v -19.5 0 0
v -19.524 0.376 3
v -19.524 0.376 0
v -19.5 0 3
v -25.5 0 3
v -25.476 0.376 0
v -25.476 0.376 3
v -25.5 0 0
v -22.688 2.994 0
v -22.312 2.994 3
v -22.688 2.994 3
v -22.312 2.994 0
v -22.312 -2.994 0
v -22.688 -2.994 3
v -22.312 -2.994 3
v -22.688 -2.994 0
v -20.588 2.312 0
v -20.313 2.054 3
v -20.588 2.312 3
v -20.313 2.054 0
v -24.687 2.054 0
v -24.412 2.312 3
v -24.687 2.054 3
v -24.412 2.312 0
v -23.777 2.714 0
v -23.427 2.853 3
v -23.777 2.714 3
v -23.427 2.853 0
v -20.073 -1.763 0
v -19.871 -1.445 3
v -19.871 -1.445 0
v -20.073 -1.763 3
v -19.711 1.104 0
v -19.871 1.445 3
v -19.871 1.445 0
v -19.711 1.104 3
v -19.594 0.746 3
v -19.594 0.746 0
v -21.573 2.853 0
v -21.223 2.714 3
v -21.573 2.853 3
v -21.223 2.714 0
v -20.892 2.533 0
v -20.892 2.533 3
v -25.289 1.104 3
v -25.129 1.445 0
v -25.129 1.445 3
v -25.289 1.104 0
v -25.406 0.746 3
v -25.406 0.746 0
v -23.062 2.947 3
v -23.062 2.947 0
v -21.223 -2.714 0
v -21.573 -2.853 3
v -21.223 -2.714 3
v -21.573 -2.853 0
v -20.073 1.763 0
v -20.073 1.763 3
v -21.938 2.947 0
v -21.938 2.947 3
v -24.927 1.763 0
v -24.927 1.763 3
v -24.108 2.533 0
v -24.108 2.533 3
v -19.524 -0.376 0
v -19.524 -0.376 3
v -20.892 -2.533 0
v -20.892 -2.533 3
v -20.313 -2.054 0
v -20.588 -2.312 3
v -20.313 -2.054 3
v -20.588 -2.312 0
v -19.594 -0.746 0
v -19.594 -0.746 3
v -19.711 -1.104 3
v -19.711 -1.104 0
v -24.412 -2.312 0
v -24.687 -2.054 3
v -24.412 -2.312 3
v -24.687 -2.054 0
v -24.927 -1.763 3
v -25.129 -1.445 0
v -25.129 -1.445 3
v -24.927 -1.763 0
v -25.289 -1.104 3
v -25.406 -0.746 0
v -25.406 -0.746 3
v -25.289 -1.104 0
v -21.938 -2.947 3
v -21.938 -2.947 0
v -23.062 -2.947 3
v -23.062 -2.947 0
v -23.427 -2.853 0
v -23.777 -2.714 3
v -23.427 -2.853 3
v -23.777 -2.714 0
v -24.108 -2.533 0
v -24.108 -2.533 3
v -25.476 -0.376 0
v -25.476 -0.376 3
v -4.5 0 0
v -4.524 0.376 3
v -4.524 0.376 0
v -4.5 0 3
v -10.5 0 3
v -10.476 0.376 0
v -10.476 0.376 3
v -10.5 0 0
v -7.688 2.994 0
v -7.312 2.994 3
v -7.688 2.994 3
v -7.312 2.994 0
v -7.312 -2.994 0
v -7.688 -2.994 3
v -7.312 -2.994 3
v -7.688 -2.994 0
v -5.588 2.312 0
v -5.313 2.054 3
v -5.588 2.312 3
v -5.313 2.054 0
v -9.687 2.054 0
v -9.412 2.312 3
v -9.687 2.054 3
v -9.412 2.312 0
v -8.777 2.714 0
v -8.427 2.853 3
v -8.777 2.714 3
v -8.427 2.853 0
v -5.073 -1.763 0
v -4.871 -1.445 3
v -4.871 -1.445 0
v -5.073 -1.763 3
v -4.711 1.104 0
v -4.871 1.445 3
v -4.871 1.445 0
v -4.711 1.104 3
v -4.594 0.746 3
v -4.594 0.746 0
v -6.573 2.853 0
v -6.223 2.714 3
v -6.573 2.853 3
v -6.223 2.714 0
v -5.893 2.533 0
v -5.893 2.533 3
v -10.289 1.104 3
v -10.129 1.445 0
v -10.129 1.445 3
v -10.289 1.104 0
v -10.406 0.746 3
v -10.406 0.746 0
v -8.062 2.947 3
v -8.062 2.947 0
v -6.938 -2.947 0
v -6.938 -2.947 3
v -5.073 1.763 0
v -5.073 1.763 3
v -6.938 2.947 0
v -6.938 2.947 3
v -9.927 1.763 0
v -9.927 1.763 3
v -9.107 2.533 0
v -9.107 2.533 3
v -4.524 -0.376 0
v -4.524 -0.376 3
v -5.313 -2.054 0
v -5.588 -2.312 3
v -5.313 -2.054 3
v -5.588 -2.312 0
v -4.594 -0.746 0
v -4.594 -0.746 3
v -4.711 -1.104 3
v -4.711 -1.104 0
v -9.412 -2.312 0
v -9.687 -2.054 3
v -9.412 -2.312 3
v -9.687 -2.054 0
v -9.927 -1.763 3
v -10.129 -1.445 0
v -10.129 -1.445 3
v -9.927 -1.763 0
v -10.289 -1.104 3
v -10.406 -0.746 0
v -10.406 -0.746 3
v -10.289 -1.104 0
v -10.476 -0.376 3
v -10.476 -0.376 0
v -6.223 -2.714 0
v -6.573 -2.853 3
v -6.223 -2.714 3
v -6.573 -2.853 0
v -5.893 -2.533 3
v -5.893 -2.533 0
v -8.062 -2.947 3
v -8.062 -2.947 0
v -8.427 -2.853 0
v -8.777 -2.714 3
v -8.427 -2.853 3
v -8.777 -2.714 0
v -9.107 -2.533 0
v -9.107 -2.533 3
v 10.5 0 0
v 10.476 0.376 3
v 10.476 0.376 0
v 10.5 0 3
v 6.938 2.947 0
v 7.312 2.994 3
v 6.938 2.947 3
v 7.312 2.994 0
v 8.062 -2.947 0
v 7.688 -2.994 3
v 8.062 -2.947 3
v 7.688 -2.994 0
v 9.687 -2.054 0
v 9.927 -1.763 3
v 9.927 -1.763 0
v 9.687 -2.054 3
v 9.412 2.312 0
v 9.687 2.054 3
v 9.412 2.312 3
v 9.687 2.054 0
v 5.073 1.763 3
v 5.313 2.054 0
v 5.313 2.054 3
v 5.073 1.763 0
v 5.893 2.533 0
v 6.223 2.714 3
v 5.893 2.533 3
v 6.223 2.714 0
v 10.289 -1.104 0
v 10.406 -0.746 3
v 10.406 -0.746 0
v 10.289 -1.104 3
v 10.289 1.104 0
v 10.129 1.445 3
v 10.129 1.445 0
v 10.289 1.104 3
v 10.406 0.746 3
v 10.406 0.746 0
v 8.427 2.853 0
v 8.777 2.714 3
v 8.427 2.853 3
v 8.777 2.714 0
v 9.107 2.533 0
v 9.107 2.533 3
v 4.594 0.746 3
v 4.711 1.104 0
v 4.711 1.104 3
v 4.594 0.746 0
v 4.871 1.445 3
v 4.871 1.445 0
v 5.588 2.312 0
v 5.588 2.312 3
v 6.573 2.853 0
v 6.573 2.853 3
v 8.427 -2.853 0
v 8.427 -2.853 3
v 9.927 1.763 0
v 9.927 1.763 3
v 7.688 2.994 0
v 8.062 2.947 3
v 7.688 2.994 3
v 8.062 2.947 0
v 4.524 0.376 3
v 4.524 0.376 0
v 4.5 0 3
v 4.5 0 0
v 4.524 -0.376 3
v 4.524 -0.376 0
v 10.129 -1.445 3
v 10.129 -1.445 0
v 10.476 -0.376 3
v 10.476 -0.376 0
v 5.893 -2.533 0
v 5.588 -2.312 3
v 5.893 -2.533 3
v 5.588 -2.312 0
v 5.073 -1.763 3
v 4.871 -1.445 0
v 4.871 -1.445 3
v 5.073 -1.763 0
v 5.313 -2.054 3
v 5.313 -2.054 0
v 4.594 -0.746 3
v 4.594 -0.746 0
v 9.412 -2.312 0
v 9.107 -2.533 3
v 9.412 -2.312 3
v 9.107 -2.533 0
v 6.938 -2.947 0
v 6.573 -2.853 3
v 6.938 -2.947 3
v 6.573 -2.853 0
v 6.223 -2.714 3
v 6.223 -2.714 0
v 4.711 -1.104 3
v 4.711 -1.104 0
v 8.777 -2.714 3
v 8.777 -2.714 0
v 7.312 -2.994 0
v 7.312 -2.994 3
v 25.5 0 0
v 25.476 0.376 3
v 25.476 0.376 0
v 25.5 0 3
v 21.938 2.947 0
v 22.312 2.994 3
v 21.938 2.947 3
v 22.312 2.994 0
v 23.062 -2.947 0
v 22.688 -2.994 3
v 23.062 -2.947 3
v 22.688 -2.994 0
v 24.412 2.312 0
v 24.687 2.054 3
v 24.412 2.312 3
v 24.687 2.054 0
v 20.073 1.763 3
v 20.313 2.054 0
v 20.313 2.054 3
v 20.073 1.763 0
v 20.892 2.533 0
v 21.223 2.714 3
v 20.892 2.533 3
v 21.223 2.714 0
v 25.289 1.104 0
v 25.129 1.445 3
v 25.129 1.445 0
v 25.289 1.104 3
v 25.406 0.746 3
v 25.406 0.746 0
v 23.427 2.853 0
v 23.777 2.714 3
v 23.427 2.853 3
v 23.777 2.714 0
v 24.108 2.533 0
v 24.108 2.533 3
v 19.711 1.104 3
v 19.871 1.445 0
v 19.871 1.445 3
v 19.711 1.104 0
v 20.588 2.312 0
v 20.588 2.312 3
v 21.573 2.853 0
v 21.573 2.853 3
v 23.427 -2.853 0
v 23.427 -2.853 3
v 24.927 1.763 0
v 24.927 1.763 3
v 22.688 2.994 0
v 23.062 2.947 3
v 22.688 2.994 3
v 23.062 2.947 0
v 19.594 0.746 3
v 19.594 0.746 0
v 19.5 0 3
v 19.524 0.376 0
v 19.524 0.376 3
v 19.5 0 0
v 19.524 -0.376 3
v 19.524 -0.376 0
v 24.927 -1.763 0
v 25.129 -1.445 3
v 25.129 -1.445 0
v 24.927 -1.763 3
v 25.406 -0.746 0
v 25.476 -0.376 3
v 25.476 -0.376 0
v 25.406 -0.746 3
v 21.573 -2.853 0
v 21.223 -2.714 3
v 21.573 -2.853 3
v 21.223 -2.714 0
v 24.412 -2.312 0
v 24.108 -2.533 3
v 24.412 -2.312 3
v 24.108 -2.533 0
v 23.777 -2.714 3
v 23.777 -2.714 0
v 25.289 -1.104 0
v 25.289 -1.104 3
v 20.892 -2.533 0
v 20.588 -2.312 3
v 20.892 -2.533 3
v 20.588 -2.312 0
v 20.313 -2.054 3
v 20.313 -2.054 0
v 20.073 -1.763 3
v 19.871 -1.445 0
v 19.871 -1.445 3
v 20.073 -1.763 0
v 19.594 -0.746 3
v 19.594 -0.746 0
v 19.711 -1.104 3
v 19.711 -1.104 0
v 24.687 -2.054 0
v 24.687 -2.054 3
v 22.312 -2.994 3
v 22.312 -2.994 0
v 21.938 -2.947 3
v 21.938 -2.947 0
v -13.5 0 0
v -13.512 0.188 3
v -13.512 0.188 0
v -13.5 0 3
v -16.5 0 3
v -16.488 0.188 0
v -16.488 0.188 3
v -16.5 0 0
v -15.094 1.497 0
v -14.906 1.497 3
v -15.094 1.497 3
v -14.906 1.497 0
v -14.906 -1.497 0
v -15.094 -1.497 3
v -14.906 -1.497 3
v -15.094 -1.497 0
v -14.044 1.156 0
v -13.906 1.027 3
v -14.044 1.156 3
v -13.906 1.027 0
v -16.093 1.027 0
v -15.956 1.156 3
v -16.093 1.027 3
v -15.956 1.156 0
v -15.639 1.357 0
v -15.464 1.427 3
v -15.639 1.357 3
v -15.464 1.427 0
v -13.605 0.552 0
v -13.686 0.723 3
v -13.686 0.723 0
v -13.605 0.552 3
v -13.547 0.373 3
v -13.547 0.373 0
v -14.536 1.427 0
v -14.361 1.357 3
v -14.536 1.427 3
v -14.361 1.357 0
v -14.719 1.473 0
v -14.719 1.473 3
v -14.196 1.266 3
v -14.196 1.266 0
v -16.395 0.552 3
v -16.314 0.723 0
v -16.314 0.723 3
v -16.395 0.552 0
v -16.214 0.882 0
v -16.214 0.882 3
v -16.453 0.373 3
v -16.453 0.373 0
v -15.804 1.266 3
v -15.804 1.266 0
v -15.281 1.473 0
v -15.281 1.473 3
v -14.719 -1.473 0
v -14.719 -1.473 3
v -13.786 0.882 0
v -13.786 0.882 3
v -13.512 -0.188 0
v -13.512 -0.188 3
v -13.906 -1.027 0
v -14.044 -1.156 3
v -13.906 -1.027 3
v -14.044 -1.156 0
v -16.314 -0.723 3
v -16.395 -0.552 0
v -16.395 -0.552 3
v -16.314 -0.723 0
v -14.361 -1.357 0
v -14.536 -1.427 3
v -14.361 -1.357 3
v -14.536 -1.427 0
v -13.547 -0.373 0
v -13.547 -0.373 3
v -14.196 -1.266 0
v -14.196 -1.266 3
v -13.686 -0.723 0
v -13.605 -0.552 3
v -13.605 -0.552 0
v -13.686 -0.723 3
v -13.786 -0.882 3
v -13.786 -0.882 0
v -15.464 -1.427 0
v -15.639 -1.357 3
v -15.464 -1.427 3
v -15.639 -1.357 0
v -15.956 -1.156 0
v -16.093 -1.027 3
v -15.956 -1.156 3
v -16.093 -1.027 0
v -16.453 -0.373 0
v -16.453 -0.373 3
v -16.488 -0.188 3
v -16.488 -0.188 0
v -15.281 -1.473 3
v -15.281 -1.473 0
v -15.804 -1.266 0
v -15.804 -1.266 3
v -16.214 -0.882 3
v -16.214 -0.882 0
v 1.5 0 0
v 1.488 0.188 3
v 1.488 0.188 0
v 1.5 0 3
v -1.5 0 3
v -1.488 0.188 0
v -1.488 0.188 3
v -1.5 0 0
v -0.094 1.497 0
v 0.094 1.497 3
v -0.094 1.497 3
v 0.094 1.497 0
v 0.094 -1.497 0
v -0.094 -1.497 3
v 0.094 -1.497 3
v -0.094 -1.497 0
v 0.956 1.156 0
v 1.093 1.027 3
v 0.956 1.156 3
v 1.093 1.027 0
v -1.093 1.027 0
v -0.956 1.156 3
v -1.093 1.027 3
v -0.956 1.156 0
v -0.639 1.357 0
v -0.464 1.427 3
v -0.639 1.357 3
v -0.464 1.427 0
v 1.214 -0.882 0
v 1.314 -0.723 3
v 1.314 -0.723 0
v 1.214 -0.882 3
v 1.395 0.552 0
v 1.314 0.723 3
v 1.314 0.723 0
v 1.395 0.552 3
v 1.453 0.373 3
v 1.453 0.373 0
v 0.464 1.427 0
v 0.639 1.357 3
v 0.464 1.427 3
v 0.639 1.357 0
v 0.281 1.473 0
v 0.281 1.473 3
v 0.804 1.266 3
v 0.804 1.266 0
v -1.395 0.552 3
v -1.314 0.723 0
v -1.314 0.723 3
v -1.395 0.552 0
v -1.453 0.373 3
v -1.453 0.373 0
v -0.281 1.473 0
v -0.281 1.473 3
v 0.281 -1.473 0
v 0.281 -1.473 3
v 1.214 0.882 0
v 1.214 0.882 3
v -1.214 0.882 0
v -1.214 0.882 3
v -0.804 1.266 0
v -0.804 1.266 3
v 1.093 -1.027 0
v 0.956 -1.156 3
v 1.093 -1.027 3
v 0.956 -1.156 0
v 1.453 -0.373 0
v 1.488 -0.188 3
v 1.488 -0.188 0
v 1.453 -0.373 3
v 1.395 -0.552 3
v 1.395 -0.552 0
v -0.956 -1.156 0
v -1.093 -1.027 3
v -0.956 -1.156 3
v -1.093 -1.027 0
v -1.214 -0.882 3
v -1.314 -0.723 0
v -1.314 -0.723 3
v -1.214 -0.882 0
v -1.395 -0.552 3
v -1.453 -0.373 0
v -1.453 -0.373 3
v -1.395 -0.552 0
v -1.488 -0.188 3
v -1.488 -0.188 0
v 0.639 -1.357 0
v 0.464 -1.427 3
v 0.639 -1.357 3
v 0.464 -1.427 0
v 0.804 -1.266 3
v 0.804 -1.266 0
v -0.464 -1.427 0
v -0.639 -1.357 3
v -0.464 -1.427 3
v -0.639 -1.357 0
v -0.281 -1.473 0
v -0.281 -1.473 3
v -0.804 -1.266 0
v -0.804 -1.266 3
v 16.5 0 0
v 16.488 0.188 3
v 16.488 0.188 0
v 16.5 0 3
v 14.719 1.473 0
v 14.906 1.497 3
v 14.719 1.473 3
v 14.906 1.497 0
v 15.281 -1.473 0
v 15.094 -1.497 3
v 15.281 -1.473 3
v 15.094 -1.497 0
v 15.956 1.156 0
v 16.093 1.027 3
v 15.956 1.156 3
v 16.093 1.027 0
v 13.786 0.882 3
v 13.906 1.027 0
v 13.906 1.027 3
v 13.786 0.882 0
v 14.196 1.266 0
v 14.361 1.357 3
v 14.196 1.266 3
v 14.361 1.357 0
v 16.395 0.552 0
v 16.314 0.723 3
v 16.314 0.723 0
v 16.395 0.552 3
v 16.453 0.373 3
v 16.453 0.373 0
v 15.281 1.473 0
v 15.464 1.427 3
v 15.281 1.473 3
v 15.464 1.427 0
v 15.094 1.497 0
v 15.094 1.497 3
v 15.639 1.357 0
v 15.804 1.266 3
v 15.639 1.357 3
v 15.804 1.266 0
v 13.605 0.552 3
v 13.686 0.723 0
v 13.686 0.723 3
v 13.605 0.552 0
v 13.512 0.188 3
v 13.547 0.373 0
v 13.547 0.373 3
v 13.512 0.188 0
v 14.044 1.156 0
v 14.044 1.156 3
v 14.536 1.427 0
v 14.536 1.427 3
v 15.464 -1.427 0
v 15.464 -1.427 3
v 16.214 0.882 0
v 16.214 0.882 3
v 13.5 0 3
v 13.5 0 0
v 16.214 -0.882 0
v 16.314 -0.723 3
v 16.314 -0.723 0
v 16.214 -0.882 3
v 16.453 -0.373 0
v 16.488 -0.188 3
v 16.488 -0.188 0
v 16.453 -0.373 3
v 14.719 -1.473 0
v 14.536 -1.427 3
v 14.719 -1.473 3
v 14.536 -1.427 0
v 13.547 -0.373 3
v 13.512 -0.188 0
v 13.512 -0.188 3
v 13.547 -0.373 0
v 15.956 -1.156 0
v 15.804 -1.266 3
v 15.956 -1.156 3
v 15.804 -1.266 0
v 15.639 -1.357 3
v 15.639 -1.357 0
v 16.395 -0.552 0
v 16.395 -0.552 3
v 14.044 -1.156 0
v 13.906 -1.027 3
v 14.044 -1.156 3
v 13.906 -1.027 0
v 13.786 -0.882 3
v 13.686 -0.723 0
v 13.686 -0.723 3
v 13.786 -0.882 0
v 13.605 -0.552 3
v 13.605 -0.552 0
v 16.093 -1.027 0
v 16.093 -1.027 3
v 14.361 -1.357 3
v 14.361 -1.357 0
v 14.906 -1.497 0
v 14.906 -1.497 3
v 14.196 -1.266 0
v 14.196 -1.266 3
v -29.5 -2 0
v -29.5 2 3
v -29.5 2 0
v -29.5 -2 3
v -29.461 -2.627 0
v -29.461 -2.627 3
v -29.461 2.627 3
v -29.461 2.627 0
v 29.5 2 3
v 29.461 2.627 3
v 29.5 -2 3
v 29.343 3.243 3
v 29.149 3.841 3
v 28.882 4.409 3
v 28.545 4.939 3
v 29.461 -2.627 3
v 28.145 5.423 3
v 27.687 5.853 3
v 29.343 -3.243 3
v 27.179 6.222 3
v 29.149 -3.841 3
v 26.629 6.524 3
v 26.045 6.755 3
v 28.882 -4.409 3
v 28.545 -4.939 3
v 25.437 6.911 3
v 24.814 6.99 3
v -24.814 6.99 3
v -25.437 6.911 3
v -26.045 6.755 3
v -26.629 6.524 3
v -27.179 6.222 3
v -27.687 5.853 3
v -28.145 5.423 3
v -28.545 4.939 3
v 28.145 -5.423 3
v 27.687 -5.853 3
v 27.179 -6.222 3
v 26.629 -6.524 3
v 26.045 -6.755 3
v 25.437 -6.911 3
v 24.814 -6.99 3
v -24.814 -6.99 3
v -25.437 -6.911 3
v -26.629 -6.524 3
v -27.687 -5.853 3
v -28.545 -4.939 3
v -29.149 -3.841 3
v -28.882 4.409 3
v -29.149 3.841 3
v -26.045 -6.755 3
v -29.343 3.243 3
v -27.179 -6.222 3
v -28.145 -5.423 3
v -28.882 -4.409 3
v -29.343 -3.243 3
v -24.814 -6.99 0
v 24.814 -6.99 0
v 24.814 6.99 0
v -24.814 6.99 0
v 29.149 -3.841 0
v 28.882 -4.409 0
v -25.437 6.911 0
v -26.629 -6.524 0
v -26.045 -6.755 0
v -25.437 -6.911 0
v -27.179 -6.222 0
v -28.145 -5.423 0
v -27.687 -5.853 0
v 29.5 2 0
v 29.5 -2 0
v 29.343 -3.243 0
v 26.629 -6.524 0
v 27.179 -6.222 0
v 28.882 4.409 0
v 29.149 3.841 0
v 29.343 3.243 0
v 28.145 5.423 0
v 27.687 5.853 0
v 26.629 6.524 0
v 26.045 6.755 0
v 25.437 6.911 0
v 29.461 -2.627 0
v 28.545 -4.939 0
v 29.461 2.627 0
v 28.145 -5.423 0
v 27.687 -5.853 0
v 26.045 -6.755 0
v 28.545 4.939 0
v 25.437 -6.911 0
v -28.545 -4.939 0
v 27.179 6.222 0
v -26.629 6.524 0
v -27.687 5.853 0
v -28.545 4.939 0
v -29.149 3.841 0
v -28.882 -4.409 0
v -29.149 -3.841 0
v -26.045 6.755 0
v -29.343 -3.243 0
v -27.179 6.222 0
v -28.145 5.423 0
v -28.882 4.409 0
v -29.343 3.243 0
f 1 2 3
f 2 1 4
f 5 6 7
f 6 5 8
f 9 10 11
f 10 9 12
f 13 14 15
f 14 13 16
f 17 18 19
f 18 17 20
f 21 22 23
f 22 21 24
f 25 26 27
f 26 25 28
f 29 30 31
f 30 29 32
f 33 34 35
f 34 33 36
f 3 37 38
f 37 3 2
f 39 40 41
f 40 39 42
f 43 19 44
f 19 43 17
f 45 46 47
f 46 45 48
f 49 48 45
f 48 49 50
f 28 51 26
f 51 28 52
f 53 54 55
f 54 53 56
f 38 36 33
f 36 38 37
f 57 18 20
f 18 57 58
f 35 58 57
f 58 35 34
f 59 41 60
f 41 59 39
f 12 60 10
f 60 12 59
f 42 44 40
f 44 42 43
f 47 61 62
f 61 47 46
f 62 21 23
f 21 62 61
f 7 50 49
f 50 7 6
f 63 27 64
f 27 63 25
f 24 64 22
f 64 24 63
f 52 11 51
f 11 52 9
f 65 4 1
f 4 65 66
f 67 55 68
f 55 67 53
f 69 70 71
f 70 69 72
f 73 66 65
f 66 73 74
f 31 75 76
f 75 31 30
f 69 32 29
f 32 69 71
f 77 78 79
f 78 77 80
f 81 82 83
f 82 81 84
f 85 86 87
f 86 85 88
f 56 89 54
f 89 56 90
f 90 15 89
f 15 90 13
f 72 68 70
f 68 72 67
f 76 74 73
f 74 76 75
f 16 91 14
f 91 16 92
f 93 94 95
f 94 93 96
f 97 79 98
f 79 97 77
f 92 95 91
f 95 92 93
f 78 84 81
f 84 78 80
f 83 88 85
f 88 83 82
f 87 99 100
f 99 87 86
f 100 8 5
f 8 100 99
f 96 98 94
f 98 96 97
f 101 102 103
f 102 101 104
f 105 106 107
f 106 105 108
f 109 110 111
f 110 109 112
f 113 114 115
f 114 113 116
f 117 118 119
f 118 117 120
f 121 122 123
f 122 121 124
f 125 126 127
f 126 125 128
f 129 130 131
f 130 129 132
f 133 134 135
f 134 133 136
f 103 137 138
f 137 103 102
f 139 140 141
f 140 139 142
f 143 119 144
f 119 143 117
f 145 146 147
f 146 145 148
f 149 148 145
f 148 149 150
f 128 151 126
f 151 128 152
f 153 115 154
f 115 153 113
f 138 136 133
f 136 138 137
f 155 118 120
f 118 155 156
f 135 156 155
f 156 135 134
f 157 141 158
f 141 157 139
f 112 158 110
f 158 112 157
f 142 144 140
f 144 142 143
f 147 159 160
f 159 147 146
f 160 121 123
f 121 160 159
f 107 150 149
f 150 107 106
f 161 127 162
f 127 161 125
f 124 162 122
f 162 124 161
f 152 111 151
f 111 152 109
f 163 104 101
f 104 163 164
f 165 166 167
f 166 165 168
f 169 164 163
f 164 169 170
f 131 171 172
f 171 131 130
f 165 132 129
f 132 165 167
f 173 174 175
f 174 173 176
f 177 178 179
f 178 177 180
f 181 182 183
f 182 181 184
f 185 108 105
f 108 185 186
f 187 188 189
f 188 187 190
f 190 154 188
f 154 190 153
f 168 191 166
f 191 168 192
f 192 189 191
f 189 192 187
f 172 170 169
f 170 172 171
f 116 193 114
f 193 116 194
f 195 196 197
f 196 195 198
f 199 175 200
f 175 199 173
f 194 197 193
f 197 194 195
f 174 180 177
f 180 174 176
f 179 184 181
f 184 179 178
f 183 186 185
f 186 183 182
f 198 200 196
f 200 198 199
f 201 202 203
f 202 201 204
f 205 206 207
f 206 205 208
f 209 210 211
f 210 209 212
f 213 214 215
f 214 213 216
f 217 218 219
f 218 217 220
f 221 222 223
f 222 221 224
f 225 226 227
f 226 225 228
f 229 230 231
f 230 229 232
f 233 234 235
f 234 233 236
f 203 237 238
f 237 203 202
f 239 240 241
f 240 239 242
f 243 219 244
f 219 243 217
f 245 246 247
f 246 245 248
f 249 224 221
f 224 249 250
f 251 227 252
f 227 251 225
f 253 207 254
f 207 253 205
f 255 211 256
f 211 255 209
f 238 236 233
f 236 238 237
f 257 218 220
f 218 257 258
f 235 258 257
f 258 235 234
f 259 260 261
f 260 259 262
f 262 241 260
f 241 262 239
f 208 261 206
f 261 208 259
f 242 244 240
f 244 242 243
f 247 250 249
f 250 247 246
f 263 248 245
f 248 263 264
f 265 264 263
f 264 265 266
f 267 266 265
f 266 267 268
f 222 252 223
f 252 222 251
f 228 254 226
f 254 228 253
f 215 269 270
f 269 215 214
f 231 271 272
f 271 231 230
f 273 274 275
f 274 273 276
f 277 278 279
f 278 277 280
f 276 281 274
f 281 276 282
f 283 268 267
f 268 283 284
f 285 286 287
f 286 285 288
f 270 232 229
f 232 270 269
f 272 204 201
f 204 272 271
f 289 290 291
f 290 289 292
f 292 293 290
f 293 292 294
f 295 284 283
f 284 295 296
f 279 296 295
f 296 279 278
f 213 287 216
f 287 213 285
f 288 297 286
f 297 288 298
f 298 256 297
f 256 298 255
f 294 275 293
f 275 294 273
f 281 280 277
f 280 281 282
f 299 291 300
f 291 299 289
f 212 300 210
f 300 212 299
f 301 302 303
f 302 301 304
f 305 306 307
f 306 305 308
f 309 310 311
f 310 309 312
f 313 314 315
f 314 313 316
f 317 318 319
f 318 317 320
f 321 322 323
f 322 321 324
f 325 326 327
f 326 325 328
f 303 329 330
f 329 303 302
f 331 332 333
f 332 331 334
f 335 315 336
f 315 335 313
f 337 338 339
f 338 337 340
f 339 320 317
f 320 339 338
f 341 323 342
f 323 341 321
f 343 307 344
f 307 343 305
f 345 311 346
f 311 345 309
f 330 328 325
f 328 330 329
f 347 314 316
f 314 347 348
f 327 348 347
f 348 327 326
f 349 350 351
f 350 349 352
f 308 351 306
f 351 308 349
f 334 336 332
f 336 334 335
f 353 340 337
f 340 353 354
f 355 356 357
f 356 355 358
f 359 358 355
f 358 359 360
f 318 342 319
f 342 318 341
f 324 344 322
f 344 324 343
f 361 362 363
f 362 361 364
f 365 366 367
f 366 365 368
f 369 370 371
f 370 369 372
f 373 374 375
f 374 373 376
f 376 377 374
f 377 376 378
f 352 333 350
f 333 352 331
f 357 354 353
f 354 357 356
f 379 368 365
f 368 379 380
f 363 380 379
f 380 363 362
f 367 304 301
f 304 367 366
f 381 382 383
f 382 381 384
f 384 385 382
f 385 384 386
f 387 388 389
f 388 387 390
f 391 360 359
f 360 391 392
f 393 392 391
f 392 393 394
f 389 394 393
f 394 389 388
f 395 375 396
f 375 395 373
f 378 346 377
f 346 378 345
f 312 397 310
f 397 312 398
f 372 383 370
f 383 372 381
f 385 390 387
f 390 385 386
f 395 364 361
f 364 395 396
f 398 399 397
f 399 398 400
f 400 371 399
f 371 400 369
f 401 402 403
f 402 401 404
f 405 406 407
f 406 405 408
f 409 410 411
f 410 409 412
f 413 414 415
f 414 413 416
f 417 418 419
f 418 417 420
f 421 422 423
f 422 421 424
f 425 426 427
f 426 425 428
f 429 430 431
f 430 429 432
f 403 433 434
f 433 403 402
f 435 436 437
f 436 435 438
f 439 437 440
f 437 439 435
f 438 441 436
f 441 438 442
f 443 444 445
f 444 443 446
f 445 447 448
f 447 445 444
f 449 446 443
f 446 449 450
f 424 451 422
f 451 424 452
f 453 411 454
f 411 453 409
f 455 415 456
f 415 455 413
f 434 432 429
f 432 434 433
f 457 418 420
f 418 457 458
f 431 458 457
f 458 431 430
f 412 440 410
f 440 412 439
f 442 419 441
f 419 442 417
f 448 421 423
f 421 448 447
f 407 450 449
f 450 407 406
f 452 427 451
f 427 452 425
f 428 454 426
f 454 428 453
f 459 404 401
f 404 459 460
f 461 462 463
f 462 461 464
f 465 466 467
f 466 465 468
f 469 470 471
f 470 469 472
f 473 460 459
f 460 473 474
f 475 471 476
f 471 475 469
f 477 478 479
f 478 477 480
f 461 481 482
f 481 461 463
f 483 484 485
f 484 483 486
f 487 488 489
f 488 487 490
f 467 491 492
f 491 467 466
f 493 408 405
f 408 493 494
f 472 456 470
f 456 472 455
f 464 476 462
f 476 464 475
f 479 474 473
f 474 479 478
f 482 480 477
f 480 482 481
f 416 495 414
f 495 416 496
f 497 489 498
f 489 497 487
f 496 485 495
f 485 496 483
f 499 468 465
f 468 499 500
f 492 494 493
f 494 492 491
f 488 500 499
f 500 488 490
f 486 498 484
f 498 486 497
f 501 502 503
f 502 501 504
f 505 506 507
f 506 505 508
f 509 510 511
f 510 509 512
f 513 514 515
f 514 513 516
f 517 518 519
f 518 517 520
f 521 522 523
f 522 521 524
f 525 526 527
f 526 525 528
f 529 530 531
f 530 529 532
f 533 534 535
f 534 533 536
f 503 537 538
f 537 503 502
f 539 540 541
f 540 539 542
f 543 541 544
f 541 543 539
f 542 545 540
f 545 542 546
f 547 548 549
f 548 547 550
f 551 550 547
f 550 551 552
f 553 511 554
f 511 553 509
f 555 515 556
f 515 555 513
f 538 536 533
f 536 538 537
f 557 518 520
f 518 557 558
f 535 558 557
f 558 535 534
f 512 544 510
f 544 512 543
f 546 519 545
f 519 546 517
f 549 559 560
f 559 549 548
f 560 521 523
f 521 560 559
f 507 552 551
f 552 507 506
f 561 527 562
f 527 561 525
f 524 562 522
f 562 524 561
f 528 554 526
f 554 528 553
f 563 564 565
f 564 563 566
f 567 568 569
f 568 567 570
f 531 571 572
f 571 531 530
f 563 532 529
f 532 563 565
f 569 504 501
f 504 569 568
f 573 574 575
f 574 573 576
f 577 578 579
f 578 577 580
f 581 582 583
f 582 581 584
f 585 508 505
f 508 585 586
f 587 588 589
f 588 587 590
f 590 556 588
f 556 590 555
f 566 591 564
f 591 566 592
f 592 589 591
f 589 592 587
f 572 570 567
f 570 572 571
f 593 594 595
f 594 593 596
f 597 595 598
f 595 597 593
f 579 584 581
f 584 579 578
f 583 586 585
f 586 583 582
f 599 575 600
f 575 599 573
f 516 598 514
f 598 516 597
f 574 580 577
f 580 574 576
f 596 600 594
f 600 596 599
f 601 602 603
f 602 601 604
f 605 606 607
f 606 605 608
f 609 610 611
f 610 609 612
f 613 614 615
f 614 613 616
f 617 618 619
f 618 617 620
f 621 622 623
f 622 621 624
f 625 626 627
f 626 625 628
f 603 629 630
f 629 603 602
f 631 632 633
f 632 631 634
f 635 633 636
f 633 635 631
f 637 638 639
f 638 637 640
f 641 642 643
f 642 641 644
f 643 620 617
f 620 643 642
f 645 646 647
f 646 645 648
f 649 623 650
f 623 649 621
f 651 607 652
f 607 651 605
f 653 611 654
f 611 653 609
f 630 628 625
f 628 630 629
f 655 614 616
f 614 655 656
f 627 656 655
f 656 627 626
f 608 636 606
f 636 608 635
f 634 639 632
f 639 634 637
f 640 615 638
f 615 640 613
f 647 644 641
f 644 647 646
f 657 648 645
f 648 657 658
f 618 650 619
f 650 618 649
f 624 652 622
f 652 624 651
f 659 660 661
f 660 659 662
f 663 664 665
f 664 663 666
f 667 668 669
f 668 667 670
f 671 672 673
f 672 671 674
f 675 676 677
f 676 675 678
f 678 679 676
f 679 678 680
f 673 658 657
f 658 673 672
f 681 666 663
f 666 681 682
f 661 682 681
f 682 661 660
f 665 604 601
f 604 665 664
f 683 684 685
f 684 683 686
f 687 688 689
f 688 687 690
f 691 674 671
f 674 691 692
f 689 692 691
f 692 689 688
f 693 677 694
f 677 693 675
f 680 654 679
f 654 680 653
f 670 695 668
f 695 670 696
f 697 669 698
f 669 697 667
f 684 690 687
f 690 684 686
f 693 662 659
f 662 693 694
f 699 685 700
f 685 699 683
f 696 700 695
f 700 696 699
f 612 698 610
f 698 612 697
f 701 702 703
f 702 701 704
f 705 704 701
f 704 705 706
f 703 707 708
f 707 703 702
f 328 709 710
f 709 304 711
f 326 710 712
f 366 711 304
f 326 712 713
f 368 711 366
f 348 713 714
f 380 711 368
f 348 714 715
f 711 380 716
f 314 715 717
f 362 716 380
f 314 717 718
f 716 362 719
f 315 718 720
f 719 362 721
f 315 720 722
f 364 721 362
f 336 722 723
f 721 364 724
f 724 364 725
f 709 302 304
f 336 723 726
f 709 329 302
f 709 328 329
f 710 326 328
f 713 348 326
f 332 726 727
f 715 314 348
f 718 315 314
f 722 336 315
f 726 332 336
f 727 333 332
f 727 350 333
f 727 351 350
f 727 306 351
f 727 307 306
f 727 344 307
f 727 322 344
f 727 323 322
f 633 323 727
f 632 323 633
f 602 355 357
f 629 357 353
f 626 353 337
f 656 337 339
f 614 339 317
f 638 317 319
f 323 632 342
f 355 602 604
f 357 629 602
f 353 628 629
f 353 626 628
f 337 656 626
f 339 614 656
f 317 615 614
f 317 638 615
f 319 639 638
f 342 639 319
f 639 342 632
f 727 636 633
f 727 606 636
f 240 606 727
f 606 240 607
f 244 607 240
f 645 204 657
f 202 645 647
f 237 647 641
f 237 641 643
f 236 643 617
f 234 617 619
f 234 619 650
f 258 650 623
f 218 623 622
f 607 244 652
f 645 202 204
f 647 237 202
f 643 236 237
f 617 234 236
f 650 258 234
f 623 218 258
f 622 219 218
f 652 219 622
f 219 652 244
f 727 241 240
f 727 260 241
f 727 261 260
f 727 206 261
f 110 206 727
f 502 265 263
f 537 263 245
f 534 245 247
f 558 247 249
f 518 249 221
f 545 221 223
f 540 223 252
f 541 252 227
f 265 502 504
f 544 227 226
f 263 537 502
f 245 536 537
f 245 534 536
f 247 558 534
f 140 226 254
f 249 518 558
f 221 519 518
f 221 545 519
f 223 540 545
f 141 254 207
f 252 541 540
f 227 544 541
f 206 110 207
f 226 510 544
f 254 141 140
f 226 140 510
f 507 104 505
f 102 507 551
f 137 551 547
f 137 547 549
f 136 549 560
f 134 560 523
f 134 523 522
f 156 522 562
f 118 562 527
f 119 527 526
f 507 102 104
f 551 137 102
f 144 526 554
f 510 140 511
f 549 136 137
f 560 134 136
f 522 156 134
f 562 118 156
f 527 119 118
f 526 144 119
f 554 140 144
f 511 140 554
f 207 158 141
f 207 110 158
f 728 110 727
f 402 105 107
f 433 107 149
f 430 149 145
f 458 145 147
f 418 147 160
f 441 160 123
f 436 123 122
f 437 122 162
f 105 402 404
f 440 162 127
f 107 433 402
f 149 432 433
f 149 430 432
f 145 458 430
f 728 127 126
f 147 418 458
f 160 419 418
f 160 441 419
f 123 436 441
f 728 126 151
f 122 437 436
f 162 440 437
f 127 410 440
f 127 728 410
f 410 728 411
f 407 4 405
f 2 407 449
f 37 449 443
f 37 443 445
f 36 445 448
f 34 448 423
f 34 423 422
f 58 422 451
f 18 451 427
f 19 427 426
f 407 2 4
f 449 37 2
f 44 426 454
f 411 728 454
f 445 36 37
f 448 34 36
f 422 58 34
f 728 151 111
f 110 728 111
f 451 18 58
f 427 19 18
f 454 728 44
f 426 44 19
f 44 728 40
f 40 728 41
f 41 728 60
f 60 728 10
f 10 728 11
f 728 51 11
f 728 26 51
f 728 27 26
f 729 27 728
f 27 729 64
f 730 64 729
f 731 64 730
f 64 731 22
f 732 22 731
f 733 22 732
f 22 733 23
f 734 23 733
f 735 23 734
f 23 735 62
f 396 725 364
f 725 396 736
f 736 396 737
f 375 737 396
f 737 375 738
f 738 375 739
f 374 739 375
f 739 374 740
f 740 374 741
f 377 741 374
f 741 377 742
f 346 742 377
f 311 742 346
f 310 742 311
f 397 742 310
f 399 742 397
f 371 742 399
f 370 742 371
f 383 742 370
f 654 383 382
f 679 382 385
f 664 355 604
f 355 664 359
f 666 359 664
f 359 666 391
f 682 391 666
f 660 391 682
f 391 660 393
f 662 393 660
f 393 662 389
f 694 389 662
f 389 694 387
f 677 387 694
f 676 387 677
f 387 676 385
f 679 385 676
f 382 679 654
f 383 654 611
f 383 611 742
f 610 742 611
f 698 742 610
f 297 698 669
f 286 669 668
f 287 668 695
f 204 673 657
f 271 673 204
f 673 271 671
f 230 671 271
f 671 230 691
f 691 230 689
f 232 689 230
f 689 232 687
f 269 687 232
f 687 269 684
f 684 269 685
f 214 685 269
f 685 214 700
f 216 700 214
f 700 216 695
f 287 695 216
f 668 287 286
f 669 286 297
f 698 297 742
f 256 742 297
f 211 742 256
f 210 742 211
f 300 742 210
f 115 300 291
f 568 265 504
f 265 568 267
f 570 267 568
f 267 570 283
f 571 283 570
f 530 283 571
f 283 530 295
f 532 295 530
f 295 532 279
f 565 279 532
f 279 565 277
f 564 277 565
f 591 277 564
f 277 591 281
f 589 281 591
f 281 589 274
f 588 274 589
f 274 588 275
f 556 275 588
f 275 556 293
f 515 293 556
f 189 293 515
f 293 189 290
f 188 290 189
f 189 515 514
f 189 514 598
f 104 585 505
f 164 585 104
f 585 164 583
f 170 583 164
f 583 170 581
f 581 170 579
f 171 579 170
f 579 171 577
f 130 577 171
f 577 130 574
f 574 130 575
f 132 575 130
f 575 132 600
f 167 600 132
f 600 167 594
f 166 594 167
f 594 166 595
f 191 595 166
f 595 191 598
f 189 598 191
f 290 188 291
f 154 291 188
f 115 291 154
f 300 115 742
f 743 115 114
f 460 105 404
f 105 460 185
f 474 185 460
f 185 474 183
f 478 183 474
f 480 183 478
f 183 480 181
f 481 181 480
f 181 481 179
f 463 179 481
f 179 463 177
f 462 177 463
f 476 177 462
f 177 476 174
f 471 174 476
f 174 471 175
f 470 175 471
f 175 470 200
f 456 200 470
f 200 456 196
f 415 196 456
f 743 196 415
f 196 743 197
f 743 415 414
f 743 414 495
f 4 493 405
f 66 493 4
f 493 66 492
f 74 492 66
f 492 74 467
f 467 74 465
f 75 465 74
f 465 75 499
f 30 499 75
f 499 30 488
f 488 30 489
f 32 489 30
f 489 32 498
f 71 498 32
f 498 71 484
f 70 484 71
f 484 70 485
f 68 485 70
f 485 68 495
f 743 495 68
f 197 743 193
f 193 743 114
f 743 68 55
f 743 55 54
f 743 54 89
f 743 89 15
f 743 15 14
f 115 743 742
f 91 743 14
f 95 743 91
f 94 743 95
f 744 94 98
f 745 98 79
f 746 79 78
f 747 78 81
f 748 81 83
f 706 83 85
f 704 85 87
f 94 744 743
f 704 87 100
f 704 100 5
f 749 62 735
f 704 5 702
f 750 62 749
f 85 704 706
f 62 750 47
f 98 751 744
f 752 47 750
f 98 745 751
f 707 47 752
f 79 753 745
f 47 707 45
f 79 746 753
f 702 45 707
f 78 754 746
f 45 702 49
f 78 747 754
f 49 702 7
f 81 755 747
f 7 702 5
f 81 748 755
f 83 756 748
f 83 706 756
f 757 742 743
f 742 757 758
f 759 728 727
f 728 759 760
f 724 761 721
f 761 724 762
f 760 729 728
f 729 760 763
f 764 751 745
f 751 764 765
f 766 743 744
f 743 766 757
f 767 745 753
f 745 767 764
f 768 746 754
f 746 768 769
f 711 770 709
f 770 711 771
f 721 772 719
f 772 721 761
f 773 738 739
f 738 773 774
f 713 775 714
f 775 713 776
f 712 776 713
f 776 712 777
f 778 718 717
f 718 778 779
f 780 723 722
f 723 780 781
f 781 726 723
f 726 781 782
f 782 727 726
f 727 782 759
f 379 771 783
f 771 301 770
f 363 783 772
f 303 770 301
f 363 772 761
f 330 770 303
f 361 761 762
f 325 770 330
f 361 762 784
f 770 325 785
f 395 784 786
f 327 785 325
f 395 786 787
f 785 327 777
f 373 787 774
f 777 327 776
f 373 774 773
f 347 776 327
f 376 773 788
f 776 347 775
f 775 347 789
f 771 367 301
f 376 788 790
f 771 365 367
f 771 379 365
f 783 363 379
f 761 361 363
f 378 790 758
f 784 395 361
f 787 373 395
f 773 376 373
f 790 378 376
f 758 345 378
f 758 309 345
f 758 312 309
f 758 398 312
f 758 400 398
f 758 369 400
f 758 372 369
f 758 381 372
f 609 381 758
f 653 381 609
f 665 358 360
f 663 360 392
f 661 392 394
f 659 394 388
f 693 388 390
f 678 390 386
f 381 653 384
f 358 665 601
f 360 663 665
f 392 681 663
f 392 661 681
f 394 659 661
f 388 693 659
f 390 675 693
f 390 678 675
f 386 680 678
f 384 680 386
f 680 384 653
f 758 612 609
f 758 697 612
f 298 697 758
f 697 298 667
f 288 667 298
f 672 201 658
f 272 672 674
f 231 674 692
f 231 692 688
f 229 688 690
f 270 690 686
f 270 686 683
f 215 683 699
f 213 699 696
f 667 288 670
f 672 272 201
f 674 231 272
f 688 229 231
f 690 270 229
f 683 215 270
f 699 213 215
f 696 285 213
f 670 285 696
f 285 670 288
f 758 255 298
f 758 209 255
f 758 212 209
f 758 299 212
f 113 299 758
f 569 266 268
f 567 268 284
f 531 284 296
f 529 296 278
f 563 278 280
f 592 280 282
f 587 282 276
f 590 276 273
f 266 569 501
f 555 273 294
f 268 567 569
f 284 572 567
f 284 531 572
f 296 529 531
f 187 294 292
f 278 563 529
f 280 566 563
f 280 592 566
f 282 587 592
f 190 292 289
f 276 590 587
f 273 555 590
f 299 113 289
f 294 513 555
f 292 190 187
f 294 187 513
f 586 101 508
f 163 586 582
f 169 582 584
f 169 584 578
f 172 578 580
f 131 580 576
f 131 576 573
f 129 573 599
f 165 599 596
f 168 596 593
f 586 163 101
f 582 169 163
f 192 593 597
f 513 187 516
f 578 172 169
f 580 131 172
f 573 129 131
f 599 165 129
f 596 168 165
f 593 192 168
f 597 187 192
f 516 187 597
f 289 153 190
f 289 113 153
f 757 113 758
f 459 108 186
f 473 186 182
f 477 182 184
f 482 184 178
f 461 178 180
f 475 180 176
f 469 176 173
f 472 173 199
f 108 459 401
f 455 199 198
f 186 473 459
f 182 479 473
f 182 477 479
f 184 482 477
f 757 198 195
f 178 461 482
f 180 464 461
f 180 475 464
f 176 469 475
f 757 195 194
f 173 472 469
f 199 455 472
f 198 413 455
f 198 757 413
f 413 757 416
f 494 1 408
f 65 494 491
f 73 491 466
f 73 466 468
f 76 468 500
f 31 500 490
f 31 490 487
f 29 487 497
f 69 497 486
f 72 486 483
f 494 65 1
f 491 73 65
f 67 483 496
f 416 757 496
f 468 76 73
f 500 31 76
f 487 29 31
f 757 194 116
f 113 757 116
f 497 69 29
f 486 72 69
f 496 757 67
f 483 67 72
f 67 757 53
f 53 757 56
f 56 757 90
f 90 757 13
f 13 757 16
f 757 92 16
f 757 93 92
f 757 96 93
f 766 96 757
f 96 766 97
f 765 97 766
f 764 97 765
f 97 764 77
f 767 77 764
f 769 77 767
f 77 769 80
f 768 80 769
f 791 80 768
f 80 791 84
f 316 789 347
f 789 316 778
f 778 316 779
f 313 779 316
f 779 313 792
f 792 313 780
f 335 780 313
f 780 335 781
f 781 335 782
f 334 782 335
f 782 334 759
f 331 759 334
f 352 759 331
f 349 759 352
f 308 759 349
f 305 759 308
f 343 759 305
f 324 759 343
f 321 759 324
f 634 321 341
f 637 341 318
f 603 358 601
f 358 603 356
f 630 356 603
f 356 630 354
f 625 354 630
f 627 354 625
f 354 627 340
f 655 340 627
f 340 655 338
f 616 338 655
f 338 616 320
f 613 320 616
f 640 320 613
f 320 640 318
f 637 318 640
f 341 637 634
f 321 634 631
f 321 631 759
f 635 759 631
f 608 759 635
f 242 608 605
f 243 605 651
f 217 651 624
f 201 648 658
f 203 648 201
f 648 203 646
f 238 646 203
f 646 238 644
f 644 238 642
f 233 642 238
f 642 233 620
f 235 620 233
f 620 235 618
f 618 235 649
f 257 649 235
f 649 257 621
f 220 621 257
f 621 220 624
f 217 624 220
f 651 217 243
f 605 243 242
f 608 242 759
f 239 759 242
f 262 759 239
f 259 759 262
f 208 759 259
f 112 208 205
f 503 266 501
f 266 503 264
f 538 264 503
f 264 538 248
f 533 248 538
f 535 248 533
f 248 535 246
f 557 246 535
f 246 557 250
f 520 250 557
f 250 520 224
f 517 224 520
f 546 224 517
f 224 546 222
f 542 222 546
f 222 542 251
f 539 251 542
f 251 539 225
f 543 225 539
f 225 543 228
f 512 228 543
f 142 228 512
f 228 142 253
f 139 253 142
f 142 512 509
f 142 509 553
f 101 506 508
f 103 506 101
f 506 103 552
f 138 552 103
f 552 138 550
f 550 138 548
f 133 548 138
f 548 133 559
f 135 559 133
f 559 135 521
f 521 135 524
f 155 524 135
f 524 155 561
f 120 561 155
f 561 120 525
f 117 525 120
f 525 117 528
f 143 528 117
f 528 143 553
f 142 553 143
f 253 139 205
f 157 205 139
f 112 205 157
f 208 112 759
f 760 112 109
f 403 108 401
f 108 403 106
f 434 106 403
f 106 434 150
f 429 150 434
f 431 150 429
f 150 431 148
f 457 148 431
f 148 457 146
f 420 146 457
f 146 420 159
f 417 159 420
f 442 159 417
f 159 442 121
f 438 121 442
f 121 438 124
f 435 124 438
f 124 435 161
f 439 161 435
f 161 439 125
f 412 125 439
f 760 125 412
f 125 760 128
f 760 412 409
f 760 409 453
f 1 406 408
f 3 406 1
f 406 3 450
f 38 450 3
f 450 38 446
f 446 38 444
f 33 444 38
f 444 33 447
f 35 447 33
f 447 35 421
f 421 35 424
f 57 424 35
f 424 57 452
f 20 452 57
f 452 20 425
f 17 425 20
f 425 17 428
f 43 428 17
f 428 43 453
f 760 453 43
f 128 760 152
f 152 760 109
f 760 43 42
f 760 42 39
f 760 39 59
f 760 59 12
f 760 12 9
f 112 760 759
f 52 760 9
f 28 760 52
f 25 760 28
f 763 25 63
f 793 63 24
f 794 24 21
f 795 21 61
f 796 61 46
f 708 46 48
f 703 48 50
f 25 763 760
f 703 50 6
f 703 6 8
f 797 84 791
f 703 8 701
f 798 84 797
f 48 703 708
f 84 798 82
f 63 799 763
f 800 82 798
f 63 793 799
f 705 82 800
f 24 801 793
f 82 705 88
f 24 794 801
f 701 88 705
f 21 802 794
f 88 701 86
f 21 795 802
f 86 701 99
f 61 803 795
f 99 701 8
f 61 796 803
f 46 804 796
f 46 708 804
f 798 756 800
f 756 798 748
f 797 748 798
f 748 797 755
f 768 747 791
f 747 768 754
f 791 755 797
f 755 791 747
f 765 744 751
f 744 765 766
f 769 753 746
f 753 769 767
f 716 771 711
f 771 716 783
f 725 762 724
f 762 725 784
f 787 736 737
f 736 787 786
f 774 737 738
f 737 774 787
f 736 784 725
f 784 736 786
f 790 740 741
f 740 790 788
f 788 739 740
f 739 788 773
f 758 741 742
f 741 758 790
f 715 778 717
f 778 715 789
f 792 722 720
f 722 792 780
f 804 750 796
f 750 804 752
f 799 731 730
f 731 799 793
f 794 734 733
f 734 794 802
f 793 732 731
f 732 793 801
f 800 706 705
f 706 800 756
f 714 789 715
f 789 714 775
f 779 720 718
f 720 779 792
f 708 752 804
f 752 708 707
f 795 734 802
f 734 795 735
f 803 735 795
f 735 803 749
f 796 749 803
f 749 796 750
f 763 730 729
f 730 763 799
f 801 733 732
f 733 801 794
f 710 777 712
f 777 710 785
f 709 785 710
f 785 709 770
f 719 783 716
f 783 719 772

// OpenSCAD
$fn = 50;


difference() {
	union() {
		hull() {
			translate(v = [-24.5000000000, 2.0000000000, 0]) {
				cylinder(h = 3, r = 5);
			}
			translate(v = [24.5000000000, 2.0000000000, 0]) {
				cylinder(h = 3, r = 5);
			}
			translate(v = [-24.5000000000, -2.0000000000, 0]) {
				cylinder(h = 3, r = 5);
			}
			translate(v = [24.5000000000, -2.0000000000, 0]) {
				cylinder(h = 3, r = 5);
			}
		}
	}
	union() {
		translate(v = [-22.5000000000, 0.0000000000, 0]) {
			translate(v = [0, 0, -100]) {
				cylinder(h = 200, r = 3.0000000000);
			}
		}
		translate(v = [-7.5000000000, 0.0000000000, 0]) {
			translate(v = [0, 0, -100]) {
				cylinder(h = 200, r = 3.0000000000);
			}
		}
		translate(v = [7.5000000000, 0.0000000000, 0]) {
			translate(v = [0, 0, -100]) {
				cylinder(h = 200, r = 3.0000000000);
			}
		}
		translate(v = [22.5000000000, 0.0000000000, 0]) {
			translate(v = [0, 0, -100]) {
				cylinder(h = 200, r = 3.0000000000);
			}
		}
		translate(v = [-22.5000000000, 0.0000000000, 0]) {
			translate(v = [0, 0, -100]) {
				cylinder(h = 200, r = 1.5000000000);
			}
		}
		translate(v = [-15.0000000000, 0.0000000000, 0]) {
			translate(v = [0, 0, -100]) {
				cylinder(h = 200, r = 1.5000000000);
			}
		}
		translate(v = [-7.5000000000, 0.0000000000, 0]) {
			translate(v = [0, 0, -100]) {
				cylinder(h = 200, r = 1.5000000000);
			}
		}
		translate(v = [0, 0, -100]) {
			cylinder(h = 200, r = 1.5000000000);
		}
		translate(v = [7.5000000000, 0.0000000000, 0]) {
			translate(v = [0, 0, -100]) {
				cylinder(h = 200, r = 1.5000000000);
			}
		}
		translate(v = [15.0000000000, 0.0000000000, 0]) {
			translate(v = [0, 0, -100]) {
				cylinder(h = 200, r = 1.5000000000);
			}
		}
		translate(v = [22.5000000000, 0.0000000000, 0]) {
			translate(v = [0, 0, -100]) {
				cylinder(h = 200, r = 1.5000000000);
			}
		}
	}
}
